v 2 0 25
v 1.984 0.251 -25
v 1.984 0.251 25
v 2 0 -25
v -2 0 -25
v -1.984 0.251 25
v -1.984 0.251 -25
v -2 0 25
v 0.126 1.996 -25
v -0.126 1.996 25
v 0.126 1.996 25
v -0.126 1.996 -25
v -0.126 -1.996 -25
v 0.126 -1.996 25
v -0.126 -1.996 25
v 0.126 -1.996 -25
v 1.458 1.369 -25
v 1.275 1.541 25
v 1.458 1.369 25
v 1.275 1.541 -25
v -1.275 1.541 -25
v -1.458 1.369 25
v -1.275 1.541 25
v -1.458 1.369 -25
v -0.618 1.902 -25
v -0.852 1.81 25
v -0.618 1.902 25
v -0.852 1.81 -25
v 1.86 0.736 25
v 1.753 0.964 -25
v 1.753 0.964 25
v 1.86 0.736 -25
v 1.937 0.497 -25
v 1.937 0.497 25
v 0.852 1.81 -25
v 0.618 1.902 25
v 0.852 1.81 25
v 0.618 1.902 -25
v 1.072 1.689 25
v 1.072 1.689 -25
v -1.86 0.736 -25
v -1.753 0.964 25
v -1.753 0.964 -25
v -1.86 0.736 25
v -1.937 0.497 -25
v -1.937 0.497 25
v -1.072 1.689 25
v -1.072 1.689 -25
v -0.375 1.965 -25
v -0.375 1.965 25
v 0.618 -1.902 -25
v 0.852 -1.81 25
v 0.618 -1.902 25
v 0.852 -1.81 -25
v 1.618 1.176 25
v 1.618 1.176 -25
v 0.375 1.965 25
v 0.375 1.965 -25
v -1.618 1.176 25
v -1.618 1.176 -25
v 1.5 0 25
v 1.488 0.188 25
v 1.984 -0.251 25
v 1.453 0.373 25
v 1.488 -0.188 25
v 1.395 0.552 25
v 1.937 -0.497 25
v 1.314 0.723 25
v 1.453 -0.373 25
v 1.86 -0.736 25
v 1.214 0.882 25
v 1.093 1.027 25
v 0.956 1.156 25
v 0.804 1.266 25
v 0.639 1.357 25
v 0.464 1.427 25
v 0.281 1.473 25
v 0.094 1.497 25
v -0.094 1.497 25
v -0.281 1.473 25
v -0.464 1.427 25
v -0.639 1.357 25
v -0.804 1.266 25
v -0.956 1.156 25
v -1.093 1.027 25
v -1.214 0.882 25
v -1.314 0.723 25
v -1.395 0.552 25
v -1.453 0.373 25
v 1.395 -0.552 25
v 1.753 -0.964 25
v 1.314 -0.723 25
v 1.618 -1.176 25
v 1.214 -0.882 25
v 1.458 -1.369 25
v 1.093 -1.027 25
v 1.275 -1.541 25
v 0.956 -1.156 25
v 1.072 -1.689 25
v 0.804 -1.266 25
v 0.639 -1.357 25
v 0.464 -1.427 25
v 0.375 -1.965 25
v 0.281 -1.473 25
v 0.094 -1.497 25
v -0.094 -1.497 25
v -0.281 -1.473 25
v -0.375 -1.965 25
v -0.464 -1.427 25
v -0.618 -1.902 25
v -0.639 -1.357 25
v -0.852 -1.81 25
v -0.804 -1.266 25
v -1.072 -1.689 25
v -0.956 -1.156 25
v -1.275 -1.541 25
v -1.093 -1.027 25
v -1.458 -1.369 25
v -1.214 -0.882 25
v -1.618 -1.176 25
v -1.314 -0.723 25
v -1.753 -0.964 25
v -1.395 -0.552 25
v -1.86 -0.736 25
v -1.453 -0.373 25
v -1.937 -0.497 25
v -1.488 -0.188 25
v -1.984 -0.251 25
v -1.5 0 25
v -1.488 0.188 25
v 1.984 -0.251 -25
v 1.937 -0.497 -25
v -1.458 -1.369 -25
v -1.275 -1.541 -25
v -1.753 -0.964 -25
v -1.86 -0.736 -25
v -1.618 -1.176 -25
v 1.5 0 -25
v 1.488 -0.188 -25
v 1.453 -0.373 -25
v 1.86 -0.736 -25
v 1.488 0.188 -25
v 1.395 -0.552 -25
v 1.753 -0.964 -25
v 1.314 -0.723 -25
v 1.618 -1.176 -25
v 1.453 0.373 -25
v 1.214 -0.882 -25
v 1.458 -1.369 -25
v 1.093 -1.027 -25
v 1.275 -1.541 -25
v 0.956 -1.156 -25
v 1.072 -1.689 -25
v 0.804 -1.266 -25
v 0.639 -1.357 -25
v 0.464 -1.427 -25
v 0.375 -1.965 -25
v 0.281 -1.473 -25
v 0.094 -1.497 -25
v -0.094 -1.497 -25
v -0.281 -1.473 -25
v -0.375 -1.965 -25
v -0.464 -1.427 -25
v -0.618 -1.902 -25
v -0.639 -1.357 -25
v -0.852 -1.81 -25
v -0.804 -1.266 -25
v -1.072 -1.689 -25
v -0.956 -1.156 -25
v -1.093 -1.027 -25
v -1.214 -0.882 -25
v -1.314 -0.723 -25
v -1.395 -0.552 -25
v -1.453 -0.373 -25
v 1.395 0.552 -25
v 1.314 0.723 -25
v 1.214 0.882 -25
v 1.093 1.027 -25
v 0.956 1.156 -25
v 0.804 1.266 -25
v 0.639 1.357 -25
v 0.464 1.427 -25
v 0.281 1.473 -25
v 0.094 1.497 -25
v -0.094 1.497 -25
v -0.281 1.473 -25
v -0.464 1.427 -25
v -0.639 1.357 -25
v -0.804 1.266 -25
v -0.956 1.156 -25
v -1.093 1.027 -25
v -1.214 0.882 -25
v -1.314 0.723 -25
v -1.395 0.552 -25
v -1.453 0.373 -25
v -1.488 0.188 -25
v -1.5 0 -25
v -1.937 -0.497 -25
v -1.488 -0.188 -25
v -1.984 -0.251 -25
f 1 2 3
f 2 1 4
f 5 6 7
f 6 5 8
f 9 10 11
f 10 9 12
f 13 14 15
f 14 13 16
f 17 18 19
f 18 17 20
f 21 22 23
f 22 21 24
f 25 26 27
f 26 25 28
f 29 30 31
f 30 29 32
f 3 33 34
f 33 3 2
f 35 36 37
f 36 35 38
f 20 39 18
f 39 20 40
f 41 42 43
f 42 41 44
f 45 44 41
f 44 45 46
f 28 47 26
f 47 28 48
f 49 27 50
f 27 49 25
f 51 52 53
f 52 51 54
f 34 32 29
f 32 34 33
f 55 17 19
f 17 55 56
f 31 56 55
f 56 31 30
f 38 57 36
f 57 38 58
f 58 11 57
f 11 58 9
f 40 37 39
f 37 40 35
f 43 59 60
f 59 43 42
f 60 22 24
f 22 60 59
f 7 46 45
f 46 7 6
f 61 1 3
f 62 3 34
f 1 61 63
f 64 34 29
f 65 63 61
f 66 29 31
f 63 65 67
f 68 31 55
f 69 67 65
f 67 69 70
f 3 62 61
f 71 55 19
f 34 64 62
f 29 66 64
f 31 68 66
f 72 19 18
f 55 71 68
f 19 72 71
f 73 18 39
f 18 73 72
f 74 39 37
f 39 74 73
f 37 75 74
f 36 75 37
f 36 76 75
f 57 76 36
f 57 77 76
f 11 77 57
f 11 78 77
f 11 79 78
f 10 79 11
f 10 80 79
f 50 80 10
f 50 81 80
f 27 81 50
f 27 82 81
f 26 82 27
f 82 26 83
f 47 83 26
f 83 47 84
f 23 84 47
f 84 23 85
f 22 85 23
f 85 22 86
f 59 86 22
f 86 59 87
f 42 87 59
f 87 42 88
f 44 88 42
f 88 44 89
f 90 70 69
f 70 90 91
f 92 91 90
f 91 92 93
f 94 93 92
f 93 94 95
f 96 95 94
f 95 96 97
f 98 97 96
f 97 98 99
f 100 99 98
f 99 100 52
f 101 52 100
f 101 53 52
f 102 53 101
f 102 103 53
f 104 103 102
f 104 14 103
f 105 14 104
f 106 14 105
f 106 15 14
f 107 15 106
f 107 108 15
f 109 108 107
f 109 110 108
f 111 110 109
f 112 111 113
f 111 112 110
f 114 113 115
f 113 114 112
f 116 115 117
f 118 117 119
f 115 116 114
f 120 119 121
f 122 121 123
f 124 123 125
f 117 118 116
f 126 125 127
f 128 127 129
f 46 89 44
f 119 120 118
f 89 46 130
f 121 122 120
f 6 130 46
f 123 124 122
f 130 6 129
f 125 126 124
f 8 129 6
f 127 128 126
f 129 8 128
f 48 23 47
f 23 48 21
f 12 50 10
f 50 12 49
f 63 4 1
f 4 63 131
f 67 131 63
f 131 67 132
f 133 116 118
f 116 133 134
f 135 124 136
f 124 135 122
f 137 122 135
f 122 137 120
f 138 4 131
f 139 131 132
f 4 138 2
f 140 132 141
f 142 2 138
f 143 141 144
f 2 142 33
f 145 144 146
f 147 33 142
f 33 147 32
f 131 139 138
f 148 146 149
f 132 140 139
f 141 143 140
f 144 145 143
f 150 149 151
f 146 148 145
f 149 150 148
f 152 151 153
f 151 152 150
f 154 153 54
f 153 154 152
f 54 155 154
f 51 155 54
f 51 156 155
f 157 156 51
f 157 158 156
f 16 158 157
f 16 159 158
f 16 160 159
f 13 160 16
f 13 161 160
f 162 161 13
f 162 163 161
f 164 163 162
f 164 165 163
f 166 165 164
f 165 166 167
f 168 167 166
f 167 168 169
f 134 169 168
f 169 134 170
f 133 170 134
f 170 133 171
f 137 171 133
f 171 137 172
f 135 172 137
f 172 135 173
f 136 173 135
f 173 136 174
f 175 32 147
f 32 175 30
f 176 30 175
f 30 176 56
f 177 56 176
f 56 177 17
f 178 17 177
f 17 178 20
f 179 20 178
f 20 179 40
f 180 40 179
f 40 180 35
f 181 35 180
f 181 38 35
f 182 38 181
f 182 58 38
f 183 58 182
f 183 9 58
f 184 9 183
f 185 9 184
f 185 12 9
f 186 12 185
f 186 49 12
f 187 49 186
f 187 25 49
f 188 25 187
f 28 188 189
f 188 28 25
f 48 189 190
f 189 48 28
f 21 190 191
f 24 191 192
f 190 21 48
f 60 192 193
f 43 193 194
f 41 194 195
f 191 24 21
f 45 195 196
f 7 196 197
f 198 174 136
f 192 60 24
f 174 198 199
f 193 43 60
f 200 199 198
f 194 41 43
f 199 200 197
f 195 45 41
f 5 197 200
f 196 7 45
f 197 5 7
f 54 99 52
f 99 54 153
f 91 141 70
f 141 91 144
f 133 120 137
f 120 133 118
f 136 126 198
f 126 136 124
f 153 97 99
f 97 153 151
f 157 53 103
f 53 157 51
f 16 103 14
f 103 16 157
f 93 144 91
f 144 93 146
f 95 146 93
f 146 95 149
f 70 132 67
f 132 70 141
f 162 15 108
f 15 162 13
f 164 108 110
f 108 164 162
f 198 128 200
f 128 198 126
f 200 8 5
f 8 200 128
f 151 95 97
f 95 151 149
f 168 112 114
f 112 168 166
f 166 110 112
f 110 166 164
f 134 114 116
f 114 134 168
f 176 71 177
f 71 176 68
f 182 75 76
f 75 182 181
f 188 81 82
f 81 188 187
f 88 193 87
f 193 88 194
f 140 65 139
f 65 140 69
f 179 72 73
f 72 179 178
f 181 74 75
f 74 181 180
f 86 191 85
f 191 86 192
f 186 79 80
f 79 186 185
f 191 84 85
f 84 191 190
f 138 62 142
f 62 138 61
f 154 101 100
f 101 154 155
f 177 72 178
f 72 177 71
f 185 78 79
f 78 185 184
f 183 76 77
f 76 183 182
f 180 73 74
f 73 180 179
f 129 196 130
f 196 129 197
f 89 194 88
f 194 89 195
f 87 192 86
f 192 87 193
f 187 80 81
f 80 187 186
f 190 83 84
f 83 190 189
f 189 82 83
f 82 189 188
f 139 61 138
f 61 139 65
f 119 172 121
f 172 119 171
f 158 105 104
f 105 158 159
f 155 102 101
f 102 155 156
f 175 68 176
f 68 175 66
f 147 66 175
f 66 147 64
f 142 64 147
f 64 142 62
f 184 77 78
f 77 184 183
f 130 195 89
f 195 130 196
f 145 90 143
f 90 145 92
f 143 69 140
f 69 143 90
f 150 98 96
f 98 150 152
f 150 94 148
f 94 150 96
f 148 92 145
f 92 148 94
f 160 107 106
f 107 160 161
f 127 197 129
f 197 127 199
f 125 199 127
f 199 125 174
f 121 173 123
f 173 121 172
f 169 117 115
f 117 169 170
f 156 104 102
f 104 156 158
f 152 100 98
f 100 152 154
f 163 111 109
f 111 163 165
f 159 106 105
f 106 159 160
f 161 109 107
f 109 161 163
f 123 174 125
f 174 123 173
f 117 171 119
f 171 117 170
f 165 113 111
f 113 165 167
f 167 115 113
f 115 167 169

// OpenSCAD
$fn = 50;


difference() {
	union() {
		translate(v = [0, 0, -25.0000000000]) {
			cylinder(h = 50, r = 2.0000000000);
		}
	}
	union() {
		translate(v = [0, 0, -100.0000000000]) {
			cylinder(h = 200, r = 1.5000000000);
		}
	}
}
